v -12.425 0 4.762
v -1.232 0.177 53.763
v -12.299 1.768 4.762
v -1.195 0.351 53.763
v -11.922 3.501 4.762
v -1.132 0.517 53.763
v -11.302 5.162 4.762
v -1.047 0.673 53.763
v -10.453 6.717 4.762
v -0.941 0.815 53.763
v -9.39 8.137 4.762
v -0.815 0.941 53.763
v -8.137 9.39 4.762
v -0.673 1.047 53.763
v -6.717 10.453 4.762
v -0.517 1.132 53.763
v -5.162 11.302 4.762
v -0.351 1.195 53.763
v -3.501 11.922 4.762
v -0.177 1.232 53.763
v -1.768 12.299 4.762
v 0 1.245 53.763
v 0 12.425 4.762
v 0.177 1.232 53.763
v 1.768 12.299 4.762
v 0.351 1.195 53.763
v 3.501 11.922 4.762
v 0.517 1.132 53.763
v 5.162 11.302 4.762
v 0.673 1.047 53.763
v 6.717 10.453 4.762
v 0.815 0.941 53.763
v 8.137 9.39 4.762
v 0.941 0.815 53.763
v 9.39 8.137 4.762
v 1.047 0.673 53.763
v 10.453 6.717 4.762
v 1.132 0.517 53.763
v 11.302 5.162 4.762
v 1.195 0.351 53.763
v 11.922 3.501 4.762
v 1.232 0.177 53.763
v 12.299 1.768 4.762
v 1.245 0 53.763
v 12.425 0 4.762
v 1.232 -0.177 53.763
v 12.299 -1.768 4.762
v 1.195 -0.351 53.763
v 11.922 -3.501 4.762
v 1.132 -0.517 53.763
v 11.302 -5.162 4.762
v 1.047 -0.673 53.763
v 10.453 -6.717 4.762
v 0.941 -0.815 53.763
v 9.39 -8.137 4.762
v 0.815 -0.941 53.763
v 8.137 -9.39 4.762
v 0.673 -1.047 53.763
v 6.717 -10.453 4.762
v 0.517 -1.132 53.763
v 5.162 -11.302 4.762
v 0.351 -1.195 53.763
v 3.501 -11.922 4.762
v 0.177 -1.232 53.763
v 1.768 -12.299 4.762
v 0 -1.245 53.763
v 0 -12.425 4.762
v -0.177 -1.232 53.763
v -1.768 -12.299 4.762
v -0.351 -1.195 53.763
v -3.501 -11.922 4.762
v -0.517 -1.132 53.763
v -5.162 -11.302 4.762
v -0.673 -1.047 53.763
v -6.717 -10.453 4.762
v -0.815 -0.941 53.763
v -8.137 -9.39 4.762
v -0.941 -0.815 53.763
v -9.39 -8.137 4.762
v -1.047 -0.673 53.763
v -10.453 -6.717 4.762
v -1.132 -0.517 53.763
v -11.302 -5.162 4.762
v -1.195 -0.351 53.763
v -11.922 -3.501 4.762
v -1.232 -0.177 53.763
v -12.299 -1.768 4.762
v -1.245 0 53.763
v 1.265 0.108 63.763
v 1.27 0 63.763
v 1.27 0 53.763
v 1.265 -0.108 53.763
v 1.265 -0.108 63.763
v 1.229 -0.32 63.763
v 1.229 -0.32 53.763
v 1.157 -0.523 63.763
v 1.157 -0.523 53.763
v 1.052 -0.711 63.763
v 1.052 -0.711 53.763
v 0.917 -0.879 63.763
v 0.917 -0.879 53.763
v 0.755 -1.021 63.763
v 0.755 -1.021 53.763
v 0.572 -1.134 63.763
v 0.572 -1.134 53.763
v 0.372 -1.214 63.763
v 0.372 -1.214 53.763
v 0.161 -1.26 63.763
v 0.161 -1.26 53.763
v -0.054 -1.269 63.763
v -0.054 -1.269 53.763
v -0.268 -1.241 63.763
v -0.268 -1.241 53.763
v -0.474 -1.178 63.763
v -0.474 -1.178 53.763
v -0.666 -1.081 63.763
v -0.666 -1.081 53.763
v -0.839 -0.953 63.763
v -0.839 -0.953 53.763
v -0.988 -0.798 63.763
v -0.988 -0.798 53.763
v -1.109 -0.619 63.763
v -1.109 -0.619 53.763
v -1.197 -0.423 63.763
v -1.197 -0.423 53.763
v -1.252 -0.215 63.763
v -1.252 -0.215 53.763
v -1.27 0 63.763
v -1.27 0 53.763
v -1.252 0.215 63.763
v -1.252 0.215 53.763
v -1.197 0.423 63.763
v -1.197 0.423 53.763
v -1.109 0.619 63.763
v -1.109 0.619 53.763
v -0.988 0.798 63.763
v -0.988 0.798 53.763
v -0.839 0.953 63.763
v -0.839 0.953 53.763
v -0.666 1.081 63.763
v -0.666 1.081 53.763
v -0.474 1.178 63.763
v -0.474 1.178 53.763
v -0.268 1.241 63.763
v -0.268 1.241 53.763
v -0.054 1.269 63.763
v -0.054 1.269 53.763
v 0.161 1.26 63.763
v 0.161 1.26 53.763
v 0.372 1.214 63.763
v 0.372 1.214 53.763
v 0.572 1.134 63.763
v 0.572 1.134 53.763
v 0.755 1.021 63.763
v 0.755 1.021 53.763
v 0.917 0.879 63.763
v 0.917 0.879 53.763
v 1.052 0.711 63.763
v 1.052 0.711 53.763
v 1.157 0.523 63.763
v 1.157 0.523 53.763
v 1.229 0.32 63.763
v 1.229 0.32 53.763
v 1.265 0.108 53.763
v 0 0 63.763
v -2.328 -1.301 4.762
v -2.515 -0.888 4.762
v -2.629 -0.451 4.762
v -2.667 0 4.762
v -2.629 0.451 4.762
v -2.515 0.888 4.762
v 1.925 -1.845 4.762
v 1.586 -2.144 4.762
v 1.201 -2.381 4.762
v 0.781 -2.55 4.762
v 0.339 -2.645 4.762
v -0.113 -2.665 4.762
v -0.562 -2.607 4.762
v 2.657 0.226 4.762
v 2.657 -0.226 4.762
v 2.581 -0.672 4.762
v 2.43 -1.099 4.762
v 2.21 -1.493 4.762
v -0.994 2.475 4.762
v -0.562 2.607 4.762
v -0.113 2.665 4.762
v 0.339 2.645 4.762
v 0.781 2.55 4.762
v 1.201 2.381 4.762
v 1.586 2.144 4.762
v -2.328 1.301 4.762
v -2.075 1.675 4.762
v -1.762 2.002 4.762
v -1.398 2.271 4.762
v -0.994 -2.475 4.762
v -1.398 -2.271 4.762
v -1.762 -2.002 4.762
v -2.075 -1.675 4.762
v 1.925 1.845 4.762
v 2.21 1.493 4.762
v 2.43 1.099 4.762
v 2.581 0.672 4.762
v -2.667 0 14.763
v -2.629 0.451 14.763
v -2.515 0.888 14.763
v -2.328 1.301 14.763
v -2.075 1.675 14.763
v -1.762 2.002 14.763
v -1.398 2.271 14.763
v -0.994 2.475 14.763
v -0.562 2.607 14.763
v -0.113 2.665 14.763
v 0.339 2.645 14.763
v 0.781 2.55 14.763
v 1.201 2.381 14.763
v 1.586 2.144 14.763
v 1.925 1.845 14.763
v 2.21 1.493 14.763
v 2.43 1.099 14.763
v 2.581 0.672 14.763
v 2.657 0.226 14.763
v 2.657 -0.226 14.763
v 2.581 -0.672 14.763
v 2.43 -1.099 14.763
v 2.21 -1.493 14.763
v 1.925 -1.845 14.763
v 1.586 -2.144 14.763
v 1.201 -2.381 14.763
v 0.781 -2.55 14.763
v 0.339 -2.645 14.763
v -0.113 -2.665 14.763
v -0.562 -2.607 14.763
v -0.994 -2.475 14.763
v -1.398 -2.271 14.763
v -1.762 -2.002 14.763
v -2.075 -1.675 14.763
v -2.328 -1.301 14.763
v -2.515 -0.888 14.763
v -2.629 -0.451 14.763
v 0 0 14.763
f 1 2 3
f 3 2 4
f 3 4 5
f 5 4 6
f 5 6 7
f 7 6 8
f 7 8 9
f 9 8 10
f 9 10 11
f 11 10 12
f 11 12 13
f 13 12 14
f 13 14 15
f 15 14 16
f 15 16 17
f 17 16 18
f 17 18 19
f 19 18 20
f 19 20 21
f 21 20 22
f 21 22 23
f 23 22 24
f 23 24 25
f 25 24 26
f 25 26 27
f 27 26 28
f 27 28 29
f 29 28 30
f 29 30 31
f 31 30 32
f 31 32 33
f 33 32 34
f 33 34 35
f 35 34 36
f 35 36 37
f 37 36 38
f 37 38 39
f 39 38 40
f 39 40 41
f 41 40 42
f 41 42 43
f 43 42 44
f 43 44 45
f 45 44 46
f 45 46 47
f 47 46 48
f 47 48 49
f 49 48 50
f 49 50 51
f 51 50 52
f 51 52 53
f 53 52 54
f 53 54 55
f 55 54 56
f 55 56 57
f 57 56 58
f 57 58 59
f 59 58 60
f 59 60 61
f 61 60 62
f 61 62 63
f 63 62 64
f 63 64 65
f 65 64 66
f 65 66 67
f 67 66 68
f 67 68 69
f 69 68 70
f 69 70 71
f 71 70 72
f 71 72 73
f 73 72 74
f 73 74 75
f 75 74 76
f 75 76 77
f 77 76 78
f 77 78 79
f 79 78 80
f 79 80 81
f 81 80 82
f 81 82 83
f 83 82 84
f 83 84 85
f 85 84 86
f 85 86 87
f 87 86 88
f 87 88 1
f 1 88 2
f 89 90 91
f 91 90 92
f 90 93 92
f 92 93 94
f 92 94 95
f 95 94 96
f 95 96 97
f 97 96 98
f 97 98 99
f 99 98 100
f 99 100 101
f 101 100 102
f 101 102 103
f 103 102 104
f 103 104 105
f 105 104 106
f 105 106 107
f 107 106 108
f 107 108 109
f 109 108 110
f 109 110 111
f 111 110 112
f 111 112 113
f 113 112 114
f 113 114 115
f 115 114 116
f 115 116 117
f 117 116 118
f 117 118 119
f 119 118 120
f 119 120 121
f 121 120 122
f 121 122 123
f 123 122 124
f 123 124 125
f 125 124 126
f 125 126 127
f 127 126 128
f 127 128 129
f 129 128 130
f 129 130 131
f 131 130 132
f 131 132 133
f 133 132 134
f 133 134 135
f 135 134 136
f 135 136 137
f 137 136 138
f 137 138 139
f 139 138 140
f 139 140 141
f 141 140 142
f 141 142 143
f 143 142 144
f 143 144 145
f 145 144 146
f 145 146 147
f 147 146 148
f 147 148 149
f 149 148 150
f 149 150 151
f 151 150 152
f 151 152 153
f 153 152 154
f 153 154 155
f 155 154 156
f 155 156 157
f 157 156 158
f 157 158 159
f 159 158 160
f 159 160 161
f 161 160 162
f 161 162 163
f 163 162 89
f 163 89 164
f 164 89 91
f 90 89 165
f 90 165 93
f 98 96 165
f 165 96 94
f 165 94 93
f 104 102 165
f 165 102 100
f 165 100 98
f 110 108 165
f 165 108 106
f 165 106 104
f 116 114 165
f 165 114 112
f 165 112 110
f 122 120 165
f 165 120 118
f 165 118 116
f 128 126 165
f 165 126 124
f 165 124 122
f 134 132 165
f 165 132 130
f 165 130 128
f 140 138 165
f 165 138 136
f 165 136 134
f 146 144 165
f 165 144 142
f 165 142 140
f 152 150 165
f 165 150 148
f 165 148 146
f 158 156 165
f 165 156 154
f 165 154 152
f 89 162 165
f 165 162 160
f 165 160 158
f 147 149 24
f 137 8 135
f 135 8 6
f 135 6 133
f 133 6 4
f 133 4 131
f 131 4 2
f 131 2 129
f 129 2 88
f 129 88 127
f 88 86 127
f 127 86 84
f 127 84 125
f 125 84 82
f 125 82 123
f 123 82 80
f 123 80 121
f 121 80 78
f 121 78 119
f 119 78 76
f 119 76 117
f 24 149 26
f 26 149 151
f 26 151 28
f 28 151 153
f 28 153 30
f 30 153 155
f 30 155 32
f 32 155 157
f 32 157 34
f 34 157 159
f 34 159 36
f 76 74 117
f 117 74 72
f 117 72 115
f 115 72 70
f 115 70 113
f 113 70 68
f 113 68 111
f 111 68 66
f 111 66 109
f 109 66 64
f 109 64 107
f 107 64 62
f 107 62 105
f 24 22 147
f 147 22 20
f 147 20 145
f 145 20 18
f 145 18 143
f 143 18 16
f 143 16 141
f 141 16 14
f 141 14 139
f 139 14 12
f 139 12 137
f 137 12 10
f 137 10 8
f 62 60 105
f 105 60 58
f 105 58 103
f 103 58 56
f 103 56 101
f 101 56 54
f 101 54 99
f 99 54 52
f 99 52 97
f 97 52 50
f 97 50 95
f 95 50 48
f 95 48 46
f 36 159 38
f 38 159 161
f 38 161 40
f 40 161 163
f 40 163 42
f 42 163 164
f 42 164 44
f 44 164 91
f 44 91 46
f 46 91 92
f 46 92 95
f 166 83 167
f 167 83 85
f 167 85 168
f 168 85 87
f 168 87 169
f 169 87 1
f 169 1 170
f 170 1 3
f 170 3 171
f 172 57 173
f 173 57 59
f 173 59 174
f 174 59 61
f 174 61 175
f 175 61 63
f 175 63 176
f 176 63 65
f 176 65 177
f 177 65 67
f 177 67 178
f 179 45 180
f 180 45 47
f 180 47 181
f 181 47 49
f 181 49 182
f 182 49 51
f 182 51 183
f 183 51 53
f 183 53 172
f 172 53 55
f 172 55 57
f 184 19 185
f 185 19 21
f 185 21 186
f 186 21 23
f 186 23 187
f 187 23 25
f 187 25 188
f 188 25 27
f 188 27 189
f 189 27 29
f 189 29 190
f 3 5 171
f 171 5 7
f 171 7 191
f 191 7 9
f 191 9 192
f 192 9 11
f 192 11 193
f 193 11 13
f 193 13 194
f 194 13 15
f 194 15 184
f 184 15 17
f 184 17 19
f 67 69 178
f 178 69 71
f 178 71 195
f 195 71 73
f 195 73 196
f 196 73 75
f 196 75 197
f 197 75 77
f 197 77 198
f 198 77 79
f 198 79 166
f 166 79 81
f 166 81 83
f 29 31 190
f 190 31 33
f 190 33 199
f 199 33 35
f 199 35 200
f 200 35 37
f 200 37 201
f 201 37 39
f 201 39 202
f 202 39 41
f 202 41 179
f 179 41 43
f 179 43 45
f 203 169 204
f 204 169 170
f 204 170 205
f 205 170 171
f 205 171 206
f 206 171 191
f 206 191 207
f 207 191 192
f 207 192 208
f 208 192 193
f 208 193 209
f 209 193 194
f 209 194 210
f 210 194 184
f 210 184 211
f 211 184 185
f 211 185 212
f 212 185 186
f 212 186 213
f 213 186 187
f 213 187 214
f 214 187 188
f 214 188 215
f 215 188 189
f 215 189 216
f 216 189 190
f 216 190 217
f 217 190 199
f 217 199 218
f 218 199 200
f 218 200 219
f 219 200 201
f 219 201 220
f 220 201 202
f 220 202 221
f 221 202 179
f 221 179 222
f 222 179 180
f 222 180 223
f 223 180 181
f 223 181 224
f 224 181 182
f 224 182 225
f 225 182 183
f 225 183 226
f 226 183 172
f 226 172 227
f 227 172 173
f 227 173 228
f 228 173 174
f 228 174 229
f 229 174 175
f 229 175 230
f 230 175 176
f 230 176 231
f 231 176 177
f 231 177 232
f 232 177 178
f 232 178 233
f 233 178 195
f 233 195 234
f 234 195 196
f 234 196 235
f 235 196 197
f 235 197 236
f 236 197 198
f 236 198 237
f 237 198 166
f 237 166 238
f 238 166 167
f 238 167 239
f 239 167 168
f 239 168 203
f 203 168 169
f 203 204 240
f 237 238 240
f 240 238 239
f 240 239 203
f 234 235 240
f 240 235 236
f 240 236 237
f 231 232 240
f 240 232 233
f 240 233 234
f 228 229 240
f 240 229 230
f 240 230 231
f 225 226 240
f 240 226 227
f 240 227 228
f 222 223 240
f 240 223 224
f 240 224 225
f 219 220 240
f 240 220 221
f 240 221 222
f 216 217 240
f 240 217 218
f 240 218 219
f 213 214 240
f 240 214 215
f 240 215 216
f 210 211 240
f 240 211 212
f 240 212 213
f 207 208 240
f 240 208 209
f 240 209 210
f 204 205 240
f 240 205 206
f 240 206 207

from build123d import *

# Parameters (mm, degrees)
SKETCH1_W           = 71.12
SKETCH1_H           = 71.12
BOSS_EXTRUDE1_DEPTH = 4.7625
SKETCH2_R           = 3.4925
CUT_EXTRUDE1_DEPTH  = 51.514439582
SKETCH3_R           = 12.425
BOSS_EXTRUDE2_DEPTH = 49
SKETCH5_R           = 1.27
BOSS_EXTRUDE3_DEPTH = 10
FILLET1_R           = 2.5
SKETCH6_W           = 86.163151286
SKETCH6_H           = 93.634187614
CUT_EXTRUDE2_DEPTH  = 4.7625
SKETCH7_R           = 2.667
CUT_EXTRUDE3_DEPTH  = 10


with BuildPart() as part:
    # Sketch1 → Boss-Extrude1 (new body)
    with BuildSketch(Plane.XY):
        Rectangle(SKETCH1_W, SKETCH1_H)
    extrude(amount=BOSS_EXTRUDE1_DEPTH)

    # Sketch2 → Cut-Extrude1 (cut, through all)
    with BuildSketch(Plane.XY.offset(4.7625)):
        with Locations((-30.48, 30.48)):
            Circle(SKETCH2_R)
        with Locations((30.48, 30.48)):
            Circle(SKETCH2_R)
    cut_extrude1 = extrude(amount=-CUT_EXTRUDE1_DEPTH, mode=Mode.SUBTRACT)

    # Mirror1: Cut-Extrude1 across plane
    add(cut_extrude1.mirror(Plane.ZX), mode=Mode.SUBTRACT)

    # Sketch3 → Boss-Extrude2 (add)
    with BuildSketch(Plane.XY.offset(4.7625)):
        Circle(SKETCH3_R)
    extrude(amount=BOSS_EXTRUDE2_DEPTH)

    # Sketch4 → Cut-Revolve1 (revolve, cut)
    with BuildSketch(Plane(origin=(0, 0, 0), x_dir=(0, 0, -1), z_dir=(1, 0, 0)), mode=Mode.PRIVATE) as cut_revolve1_sk:
        Polygon((-4.7625, 12.425), (-53.7625, 1.245), (-53.7625, 12.425), align=None)
    revolve(cut_revolve1_sk.sketch.rotate(Axis((0, 0, 53.7625), (0, 0, -1)), 270), axis=Axis((0, 0, 53.7625), (0, 0, -1)), mode=Mode.SUBTRACT)

    # Sketch5 → Boss-Extrude3 (add)
    with BuildSketch(Plane.XY.offset(53.7625)):
        Circle(SKETCH5_R)
    extrude(amount=BOSS_EXTRUDE3_DEPTH)

    # Fillet1
    fillet1_edges = [part.edges().sort_by_distance(p)[0] for p in [
        (-35.56, 35.56, 2.38125),
        (35.56, 35.56, 2.38125),
        (35.56, -35.56, 2.38125),
        (-35.56, -35.56, 2.38125),
    ]]
    fillet(fillet1_edges, radius=FILLET1_R)

    # Sketch6 → Cut-Extrude2 (cut)
    with BuildSketch(Plane(origin=(0, 0, 0), x_dir=(-1, 0, 0), z_dir=(0, 0, -1))):
        Rectangle(SKETCH6_W, SKETCH6_H)
    extrude(amount=-CUT_EXTRUDE2_DEPTH, mode=Mode.SUBTRACT)

    # Sketch7 → Cut-Extrude3 (cut)
    with BuildSketch(Plane(origin=(0, 0, 4.7625), x_dir=(-1, 0, 0), z_dir=(0, 0, -1))):
        Circle(SKETCH7_R)
    extrude(amount=-CUT_EXTRUDE3_DEPTH, mode=Mode.SUBTRACT)


solid = part.part
